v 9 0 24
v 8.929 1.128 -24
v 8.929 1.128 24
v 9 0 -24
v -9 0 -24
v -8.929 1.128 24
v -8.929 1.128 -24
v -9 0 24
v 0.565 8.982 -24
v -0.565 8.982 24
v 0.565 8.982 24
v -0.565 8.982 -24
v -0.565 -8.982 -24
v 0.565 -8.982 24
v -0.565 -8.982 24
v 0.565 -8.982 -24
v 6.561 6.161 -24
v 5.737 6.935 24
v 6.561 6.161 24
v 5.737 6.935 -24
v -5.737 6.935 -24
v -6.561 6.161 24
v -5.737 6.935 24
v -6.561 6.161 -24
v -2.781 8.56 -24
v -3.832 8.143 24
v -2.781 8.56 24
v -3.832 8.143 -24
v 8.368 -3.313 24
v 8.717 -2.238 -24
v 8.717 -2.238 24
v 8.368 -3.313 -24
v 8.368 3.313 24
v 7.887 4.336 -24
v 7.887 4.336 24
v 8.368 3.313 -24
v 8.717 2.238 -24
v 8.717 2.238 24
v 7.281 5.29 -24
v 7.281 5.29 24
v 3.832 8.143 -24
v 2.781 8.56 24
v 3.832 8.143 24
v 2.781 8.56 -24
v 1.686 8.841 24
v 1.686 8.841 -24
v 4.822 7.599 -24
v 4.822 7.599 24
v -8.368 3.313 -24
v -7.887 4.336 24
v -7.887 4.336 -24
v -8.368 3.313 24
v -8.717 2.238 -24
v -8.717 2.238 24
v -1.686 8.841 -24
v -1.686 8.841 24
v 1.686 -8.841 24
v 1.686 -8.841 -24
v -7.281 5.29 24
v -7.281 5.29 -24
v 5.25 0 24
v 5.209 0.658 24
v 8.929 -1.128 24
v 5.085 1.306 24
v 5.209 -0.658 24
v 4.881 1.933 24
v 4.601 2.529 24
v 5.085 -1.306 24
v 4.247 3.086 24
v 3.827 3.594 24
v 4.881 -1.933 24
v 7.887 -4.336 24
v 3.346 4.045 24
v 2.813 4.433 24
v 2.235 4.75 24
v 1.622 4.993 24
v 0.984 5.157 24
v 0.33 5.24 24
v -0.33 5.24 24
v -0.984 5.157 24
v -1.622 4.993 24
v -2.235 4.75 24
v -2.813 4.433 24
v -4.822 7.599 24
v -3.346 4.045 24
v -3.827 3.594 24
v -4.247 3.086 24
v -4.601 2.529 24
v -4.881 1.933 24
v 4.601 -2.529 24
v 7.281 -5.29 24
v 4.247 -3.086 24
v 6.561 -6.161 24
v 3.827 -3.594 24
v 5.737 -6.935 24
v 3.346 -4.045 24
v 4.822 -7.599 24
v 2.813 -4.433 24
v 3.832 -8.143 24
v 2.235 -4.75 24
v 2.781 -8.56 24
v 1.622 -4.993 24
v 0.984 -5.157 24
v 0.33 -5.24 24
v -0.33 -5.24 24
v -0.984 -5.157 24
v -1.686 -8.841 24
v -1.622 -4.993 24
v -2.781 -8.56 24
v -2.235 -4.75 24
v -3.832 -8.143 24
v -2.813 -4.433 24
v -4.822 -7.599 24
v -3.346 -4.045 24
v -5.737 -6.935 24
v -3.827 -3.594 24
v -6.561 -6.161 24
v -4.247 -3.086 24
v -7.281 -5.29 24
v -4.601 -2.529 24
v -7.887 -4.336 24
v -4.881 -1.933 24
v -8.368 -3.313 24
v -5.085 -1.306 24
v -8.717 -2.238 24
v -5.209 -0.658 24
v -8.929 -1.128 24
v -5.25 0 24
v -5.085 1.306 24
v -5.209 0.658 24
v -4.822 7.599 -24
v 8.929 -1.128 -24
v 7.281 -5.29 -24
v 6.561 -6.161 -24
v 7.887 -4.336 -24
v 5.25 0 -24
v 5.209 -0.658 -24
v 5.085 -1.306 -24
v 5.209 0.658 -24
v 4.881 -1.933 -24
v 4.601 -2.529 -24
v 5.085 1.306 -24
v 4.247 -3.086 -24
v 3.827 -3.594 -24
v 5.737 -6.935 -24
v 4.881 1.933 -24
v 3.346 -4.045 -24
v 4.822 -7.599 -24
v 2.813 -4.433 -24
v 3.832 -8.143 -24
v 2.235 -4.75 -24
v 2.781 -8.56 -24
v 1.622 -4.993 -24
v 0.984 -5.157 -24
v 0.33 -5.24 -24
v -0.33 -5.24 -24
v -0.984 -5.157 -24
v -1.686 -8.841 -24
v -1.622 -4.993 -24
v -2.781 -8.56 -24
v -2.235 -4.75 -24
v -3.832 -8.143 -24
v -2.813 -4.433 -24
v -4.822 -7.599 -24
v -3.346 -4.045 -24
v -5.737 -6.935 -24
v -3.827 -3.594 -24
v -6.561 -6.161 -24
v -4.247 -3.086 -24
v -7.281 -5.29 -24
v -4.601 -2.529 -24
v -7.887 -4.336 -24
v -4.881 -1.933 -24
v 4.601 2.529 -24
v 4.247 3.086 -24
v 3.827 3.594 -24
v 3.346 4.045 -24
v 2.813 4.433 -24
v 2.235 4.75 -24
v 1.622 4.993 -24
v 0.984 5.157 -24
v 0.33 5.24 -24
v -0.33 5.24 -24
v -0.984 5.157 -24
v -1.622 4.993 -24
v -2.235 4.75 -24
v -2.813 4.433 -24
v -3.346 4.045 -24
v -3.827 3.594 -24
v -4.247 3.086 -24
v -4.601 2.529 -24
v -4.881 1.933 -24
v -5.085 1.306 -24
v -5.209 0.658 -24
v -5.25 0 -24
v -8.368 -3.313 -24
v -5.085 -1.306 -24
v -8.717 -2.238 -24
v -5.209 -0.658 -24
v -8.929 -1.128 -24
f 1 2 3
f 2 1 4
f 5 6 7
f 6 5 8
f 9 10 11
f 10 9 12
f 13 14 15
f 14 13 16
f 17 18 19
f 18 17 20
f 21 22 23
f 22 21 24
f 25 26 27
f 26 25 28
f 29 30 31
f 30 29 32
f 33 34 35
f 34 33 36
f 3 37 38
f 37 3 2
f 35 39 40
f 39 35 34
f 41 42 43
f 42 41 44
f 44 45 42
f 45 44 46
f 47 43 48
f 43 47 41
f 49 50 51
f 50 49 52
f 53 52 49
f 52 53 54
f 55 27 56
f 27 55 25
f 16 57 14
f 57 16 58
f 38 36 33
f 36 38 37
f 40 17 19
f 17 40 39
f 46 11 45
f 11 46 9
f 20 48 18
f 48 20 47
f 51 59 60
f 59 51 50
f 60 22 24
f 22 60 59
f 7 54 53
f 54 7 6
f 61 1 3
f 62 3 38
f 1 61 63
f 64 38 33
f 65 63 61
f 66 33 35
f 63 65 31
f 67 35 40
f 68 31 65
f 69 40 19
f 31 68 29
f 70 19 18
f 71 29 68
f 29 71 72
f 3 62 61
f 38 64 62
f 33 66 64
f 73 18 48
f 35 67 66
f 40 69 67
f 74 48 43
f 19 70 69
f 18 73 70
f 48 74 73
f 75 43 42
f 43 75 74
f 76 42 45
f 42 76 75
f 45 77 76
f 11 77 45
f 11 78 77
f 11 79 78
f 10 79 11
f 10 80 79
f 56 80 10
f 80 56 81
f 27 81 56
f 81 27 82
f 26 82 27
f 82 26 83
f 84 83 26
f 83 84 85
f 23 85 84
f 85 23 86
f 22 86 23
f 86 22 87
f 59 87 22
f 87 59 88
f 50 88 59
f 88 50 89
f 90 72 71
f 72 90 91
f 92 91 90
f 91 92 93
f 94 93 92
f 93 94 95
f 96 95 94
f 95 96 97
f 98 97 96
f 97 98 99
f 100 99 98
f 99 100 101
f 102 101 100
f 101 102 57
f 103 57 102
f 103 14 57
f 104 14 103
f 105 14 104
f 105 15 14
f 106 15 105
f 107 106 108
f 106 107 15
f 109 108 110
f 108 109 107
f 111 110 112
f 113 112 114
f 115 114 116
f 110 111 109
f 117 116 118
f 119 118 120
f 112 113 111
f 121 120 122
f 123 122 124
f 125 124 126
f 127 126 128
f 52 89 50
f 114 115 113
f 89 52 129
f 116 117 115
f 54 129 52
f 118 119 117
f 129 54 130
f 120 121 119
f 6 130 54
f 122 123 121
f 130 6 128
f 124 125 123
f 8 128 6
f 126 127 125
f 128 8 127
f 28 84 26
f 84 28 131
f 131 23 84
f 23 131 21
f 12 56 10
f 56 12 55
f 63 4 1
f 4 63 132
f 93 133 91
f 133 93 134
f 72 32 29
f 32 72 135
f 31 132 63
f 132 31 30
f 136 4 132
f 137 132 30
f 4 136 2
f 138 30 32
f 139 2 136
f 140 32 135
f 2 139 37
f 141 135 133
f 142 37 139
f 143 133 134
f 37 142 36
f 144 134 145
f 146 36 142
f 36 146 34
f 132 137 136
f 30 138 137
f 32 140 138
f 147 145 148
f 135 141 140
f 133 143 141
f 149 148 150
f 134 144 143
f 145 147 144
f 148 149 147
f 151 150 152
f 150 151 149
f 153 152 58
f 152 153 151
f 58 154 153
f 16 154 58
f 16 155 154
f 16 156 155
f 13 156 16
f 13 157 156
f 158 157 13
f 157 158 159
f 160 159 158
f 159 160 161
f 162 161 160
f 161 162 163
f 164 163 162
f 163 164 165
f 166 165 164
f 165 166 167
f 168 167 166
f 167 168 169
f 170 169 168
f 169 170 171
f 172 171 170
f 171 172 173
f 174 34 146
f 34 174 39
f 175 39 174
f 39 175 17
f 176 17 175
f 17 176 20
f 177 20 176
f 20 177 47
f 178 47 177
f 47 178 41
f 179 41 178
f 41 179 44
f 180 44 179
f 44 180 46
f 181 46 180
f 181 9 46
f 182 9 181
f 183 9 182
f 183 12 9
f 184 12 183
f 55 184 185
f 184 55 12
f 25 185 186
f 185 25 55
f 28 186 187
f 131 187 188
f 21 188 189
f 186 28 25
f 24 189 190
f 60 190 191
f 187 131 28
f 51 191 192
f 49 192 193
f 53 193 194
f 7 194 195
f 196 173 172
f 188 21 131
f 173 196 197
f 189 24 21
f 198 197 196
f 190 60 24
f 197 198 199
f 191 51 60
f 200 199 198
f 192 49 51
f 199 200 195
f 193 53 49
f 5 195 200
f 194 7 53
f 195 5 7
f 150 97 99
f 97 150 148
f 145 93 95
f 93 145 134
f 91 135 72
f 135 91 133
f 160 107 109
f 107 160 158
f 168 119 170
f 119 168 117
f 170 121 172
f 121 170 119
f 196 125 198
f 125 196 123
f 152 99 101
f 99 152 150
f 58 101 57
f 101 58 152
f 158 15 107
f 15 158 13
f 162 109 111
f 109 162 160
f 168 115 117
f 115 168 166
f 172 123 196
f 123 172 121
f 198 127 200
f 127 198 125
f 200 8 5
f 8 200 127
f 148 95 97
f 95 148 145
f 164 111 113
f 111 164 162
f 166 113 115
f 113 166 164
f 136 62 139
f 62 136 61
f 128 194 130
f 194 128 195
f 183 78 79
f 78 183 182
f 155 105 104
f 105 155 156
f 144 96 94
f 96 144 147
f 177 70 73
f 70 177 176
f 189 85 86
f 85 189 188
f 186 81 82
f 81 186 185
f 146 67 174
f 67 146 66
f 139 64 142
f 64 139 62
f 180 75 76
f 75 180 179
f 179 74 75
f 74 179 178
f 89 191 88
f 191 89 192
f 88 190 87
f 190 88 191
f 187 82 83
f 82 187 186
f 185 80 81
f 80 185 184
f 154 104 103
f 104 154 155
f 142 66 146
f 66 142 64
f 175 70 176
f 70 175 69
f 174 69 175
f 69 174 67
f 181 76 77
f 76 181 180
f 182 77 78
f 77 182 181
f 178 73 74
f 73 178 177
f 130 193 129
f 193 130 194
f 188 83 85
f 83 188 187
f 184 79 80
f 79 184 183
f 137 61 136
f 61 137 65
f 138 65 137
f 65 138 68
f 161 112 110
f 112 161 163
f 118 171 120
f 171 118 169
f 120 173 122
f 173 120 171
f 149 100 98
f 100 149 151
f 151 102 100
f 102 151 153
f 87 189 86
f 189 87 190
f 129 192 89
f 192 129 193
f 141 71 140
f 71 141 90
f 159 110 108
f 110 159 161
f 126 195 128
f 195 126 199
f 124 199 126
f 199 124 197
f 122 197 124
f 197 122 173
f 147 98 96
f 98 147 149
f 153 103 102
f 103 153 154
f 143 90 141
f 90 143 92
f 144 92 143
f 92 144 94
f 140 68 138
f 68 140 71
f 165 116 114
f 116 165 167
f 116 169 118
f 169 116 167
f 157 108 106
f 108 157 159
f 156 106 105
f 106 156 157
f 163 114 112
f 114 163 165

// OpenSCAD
$fn = 50;


difference() {
	union() {
		translate(v = [0, 0, -24.0000000000]) {
			cylinder(h = 48, r = 9.0000000000);
		}
	}
	union() {
		translate(v = [0, 0, -100.0000000000]) {
			cylinder(h = 200, r = 5.2500000000);
		}
	}
}
